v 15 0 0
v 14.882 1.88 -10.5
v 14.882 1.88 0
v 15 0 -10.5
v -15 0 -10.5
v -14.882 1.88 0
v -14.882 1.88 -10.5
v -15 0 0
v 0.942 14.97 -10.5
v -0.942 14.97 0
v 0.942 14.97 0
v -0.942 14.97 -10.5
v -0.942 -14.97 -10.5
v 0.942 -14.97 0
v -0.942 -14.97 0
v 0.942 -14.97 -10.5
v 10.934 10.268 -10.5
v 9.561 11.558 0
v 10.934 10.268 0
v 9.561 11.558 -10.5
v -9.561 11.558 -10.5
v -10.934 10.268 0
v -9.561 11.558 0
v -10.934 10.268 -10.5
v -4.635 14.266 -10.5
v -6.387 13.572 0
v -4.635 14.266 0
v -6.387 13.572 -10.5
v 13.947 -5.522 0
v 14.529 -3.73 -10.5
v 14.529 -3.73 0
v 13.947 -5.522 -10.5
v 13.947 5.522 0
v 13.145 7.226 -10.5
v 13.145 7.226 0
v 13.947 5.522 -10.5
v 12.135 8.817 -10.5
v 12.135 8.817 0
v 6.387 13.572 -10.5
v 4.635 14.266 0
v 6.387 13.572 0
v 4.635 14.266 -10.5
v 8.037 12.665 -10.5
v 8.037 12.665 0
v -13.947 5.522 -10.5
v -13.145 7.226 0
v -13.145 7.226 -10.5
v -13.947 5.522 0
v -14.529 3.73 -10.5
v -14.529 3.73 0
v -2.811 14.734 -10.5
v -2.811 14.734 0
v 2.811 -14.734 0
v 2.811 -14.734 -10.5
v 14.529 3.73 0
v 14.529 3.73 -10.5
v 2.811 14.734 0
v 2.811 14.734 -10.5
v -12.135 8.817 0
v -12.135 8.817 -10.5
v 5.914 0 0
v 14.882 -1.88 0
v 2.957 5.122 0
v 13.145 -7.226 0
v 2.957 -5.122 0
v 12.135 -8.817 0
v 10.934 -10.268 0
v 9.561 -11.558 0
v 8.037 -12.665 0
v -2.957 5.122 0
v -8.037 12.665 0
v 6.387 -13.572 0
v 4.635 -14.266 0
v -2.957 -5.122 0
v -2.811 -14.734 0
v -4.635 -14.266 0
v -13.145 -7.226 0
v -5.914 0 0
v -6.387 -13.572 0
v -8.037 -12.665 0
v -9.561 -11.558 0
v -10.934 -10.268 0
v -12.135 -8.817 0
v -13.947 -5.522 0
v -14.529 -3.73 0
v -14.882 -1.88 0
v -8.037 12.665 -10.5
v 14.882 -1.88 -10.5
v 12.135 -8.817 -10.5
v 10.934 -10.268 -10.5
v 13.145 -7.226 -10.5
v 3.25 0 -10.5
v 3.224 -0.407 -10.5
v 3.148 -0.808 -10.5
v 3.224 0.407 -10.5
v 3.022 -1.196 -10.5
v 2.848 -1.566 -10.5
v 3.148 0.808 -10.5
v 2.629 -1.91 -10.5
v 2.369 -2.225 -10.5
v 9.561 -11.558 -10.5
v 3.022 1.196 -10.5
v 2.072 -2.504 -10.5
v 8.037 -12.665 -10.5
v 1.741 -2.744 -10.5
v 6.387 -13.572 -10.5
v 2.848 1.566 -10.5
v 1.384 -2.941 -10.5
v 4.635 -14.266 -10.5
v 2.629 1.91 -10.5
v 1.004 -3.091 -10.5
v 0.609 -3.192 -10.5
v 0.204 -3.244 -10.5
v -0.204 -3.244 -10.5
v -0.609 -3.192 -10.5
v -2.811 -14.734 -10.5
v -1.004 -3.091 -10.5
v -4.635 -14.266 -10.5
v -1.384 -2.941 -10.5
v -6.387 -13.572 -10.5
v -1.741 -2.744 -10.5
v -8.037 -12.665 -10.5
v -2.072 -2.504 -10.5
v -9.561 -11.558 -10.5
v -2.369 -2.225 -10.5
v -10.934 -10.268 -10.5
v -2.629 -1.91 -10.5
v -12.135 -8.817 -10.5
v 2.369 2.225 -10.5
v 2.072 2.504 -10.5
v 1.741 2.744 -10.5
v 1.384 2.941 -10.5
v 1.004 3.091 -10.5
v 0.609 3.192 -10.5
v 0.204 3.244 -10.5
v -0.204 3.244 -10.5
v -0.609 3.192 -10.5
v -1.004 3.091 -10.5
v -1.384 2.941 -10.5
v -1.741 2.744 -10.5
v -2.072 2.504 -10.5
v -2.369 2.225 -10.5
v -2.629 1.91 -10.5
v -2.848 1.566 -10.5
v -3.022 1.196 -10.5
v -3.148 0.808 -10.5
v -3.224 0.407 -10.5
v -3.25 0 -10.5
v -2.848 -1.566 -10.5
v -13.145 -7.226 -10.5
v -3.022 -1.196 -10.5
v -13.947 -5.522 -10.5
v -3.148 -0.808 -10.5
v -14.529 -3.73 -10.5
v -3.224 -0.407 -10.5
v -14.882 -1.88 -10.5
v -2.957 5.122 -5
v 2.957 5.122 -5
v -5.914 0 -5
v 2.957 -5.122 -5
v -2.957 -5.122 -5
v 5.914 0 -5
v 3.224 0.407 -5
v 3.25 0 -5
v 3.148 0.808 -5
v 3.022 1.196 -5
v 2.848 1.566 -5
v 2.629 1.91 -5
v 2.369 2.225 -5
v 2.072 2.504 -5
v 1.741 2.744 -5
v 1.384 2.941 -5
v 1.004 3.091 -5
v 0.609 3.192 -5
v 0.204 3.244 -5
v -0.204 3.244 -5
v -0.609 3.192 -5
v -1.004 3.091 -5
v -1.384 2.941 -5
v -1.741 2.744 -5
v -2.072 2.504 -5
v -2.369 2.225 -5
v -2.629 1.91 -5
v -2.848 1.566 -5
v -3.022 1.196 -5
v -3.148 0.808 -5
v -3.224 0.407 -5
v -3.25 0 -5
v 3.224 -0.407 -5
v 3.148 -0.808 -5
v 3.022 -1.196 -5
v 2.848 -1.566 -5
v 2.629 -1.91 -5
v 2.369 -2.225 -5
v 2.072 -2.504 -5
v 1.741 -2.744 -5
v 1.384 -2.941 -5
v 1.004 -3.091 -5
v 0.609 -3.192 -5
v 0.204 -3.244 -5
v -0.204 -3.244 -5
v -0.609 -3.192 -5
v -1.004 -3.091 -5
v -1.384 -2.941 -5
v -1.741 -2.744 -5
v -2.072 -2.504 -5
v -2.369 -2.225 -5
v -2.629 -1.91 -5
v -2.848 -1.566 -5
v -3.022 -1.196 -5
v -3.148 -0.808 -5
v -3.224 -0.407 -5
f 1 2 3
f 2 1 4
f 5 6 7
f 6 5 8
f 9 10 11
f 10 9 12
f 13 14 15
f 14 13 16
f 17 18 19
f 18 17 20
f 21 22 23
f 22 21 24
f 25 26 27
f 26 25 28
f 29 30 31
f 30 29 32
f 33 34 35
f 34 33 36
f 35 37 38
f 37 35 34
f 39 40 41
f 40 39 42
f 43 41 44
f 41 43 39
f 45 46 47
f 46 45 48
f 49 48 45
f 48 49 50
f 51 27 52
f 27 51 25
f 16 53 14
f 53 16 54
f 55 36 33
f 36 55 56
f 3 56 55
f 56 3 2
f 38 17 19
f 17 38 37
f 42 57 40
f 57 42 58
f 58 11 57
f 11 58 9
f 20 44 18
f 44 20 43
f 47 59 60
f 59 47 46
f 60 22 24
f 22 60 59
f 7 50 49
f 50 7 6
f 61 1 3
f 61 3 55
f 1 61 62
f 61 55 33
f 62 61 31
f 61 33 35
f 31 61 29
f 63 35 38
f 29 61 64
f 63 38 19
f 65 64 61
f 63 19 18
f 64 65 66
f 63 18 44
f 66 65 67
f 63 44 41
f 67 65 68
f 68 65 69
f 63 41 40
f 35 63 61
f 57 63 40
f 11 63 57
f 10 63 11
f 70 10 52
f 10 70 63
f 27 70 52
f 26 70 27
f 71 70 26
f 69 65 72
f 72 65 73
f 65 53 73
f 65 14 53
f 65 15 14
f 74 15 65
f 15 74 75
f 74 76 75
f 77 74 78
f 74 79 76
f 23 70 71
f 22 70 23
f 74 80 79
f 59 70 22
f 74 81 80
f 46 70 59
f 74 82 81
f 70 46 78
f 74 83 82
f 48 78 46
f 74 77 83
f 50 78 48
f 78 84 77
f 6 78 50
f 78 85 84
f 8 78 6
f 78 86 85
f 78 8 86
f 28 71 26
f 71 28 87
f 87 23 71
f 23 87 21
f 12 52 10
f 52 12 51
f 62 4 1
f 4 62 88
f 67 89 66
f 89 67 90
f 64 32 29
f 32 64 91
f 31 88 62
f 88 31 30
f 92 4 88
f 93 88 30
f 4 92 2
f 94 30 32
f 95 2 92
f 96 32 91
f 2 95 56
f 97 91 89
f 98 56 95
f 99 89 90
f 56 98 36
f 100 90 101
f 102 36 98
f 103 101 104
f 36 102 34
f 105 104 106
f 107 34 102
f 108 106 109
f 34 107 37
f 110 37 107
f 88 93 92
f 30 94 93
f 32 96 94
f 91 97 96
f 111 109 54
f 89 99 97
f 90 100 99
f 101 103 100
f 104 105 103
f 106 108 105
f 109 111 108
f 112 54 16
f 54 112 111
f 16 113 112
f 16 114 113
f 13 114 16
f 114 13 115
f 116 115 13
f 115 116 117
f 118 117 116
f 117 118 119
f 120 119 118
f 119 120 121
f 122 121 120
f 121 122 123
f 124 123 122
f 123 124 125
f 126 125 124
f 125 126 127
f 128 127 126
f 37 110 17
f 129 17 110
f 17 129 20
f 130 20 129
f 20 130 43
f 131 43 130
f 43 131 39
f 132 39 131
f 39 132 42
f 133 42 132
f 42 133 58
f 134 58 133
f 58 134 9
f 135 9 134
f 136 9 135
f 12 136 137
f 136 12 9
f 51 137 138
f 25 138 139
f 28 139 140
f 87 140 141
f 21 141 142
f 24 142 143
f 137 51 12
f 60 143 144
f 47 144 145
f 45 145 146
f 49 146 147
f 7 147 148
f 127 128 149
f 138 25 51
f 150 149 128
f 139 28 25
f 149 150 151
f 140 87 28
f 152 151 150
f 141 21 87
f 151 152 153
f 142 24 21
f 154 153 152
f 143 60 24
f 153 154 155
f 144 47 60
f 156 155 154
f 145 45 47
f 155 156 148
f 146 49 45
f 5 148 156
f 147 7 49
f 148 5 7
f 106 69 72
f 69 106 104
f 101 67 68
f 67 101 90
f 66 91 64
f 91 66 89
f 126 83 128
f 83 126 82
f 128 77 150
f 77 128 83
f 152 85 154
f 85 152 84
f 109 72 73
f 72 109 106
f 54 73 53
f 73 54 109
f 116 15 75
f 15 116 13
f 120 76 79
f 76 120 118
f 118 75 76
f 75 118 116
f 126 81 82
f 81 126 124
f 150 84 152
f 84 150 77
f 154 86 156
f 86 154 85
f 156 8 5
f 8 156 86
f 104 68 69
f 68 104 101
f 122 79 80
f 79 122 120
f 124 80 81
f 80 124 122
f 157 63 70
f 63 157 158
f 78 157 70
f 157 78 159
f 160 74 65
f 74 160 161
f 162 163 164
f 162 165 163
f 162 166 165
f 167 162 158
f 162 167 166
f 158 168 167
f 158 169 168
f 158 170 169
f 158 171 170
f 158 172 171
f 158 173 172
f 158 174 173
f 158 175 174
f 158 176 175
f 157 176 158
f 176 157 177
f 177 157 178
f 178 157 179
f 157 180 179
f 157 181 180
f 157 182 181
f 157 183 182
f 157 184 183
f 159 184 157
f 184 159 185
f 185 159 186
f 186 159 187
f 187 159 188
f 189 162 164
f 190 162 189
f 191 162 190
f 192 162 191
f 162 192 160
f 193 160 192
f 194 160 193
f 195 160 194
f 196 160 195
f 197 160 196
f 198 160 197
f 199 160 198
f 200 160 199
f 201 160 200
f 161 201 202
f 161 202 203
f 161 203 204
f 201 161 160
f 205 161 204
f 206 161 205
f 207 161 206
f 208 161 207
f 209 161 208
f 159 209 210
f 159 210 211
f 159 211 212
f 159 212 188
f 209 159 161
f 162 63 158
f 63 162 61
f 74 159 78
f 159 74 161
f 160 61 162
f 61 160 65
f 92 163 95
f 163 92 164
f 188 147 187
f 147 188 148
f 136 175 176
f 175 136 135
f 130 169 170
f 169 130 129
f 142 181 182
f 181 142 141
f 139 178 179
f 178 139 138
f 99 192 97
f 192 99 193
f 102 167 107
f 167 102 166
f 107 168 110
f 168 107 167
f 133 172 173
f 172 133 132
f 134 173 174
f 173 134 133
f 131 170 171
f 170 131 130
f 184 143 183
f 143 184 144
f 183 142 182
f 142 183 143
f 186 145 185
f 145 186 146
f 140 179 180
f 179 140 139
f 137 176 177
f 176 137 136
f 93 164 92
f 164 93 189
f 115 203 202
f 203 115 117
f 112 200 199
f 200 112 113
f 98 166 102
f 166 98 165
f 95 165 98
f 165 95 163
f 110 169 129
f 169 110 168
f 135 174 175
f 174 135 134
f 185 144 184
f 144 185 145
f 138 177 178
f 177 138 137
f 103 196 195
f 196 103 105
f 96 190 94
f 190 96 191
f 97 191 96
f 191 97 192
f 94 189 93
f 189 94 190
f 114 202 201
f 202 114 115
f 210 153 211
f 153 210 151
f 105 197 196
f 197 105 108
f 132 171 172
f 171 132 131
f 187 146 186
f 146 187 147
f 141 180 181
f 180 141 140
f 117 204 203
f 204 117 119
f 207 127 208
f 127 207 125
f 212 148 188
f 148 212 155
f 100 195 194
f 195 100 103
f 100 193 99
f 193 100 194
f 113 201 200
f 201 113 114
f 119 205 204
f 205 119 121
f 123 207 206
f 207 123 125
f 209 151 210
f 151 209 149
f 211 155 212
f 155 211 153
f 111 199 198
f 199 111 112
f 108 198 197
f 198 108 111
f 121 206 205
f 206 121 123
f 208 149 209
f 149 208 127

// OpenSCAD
$fn = 50;


difference() {
	union() {
		translate(v = [0, 0, -10.5000000000]) {
			cylinder(h = 10.5000000000, r = 15.0000000000);
		}
		translate(v = [0, 0, -9.0000000000]) {
			cylinder(h = 9, r = 2.8750000000);
		}
	}
	union() {
		translate(v = [0, 0, 0]) {
			rotate(a = [0, 0, 0]) {
				difference() {
					union() {
						translate(v = [0, 0, -5]) {
							#linear_extrude(height = 5) {
								polygon(points = [[5.9142500000, 0.0000000000], [2.9571250000, 5.1218907443], [-2.9571250000, 5.1218907443], [-5.9142500000, 0.0000000000], [-2.9571250000, -5.1218907443], [2.9571250000, -5.1218907443]]);
							}
						}
					}
					union();
				}
			}
		}
		#translate(v = [0, 0, -100.0000000000]) {
			cylinder(h = 200, r = 3.2500000000);
		}
	}
}
